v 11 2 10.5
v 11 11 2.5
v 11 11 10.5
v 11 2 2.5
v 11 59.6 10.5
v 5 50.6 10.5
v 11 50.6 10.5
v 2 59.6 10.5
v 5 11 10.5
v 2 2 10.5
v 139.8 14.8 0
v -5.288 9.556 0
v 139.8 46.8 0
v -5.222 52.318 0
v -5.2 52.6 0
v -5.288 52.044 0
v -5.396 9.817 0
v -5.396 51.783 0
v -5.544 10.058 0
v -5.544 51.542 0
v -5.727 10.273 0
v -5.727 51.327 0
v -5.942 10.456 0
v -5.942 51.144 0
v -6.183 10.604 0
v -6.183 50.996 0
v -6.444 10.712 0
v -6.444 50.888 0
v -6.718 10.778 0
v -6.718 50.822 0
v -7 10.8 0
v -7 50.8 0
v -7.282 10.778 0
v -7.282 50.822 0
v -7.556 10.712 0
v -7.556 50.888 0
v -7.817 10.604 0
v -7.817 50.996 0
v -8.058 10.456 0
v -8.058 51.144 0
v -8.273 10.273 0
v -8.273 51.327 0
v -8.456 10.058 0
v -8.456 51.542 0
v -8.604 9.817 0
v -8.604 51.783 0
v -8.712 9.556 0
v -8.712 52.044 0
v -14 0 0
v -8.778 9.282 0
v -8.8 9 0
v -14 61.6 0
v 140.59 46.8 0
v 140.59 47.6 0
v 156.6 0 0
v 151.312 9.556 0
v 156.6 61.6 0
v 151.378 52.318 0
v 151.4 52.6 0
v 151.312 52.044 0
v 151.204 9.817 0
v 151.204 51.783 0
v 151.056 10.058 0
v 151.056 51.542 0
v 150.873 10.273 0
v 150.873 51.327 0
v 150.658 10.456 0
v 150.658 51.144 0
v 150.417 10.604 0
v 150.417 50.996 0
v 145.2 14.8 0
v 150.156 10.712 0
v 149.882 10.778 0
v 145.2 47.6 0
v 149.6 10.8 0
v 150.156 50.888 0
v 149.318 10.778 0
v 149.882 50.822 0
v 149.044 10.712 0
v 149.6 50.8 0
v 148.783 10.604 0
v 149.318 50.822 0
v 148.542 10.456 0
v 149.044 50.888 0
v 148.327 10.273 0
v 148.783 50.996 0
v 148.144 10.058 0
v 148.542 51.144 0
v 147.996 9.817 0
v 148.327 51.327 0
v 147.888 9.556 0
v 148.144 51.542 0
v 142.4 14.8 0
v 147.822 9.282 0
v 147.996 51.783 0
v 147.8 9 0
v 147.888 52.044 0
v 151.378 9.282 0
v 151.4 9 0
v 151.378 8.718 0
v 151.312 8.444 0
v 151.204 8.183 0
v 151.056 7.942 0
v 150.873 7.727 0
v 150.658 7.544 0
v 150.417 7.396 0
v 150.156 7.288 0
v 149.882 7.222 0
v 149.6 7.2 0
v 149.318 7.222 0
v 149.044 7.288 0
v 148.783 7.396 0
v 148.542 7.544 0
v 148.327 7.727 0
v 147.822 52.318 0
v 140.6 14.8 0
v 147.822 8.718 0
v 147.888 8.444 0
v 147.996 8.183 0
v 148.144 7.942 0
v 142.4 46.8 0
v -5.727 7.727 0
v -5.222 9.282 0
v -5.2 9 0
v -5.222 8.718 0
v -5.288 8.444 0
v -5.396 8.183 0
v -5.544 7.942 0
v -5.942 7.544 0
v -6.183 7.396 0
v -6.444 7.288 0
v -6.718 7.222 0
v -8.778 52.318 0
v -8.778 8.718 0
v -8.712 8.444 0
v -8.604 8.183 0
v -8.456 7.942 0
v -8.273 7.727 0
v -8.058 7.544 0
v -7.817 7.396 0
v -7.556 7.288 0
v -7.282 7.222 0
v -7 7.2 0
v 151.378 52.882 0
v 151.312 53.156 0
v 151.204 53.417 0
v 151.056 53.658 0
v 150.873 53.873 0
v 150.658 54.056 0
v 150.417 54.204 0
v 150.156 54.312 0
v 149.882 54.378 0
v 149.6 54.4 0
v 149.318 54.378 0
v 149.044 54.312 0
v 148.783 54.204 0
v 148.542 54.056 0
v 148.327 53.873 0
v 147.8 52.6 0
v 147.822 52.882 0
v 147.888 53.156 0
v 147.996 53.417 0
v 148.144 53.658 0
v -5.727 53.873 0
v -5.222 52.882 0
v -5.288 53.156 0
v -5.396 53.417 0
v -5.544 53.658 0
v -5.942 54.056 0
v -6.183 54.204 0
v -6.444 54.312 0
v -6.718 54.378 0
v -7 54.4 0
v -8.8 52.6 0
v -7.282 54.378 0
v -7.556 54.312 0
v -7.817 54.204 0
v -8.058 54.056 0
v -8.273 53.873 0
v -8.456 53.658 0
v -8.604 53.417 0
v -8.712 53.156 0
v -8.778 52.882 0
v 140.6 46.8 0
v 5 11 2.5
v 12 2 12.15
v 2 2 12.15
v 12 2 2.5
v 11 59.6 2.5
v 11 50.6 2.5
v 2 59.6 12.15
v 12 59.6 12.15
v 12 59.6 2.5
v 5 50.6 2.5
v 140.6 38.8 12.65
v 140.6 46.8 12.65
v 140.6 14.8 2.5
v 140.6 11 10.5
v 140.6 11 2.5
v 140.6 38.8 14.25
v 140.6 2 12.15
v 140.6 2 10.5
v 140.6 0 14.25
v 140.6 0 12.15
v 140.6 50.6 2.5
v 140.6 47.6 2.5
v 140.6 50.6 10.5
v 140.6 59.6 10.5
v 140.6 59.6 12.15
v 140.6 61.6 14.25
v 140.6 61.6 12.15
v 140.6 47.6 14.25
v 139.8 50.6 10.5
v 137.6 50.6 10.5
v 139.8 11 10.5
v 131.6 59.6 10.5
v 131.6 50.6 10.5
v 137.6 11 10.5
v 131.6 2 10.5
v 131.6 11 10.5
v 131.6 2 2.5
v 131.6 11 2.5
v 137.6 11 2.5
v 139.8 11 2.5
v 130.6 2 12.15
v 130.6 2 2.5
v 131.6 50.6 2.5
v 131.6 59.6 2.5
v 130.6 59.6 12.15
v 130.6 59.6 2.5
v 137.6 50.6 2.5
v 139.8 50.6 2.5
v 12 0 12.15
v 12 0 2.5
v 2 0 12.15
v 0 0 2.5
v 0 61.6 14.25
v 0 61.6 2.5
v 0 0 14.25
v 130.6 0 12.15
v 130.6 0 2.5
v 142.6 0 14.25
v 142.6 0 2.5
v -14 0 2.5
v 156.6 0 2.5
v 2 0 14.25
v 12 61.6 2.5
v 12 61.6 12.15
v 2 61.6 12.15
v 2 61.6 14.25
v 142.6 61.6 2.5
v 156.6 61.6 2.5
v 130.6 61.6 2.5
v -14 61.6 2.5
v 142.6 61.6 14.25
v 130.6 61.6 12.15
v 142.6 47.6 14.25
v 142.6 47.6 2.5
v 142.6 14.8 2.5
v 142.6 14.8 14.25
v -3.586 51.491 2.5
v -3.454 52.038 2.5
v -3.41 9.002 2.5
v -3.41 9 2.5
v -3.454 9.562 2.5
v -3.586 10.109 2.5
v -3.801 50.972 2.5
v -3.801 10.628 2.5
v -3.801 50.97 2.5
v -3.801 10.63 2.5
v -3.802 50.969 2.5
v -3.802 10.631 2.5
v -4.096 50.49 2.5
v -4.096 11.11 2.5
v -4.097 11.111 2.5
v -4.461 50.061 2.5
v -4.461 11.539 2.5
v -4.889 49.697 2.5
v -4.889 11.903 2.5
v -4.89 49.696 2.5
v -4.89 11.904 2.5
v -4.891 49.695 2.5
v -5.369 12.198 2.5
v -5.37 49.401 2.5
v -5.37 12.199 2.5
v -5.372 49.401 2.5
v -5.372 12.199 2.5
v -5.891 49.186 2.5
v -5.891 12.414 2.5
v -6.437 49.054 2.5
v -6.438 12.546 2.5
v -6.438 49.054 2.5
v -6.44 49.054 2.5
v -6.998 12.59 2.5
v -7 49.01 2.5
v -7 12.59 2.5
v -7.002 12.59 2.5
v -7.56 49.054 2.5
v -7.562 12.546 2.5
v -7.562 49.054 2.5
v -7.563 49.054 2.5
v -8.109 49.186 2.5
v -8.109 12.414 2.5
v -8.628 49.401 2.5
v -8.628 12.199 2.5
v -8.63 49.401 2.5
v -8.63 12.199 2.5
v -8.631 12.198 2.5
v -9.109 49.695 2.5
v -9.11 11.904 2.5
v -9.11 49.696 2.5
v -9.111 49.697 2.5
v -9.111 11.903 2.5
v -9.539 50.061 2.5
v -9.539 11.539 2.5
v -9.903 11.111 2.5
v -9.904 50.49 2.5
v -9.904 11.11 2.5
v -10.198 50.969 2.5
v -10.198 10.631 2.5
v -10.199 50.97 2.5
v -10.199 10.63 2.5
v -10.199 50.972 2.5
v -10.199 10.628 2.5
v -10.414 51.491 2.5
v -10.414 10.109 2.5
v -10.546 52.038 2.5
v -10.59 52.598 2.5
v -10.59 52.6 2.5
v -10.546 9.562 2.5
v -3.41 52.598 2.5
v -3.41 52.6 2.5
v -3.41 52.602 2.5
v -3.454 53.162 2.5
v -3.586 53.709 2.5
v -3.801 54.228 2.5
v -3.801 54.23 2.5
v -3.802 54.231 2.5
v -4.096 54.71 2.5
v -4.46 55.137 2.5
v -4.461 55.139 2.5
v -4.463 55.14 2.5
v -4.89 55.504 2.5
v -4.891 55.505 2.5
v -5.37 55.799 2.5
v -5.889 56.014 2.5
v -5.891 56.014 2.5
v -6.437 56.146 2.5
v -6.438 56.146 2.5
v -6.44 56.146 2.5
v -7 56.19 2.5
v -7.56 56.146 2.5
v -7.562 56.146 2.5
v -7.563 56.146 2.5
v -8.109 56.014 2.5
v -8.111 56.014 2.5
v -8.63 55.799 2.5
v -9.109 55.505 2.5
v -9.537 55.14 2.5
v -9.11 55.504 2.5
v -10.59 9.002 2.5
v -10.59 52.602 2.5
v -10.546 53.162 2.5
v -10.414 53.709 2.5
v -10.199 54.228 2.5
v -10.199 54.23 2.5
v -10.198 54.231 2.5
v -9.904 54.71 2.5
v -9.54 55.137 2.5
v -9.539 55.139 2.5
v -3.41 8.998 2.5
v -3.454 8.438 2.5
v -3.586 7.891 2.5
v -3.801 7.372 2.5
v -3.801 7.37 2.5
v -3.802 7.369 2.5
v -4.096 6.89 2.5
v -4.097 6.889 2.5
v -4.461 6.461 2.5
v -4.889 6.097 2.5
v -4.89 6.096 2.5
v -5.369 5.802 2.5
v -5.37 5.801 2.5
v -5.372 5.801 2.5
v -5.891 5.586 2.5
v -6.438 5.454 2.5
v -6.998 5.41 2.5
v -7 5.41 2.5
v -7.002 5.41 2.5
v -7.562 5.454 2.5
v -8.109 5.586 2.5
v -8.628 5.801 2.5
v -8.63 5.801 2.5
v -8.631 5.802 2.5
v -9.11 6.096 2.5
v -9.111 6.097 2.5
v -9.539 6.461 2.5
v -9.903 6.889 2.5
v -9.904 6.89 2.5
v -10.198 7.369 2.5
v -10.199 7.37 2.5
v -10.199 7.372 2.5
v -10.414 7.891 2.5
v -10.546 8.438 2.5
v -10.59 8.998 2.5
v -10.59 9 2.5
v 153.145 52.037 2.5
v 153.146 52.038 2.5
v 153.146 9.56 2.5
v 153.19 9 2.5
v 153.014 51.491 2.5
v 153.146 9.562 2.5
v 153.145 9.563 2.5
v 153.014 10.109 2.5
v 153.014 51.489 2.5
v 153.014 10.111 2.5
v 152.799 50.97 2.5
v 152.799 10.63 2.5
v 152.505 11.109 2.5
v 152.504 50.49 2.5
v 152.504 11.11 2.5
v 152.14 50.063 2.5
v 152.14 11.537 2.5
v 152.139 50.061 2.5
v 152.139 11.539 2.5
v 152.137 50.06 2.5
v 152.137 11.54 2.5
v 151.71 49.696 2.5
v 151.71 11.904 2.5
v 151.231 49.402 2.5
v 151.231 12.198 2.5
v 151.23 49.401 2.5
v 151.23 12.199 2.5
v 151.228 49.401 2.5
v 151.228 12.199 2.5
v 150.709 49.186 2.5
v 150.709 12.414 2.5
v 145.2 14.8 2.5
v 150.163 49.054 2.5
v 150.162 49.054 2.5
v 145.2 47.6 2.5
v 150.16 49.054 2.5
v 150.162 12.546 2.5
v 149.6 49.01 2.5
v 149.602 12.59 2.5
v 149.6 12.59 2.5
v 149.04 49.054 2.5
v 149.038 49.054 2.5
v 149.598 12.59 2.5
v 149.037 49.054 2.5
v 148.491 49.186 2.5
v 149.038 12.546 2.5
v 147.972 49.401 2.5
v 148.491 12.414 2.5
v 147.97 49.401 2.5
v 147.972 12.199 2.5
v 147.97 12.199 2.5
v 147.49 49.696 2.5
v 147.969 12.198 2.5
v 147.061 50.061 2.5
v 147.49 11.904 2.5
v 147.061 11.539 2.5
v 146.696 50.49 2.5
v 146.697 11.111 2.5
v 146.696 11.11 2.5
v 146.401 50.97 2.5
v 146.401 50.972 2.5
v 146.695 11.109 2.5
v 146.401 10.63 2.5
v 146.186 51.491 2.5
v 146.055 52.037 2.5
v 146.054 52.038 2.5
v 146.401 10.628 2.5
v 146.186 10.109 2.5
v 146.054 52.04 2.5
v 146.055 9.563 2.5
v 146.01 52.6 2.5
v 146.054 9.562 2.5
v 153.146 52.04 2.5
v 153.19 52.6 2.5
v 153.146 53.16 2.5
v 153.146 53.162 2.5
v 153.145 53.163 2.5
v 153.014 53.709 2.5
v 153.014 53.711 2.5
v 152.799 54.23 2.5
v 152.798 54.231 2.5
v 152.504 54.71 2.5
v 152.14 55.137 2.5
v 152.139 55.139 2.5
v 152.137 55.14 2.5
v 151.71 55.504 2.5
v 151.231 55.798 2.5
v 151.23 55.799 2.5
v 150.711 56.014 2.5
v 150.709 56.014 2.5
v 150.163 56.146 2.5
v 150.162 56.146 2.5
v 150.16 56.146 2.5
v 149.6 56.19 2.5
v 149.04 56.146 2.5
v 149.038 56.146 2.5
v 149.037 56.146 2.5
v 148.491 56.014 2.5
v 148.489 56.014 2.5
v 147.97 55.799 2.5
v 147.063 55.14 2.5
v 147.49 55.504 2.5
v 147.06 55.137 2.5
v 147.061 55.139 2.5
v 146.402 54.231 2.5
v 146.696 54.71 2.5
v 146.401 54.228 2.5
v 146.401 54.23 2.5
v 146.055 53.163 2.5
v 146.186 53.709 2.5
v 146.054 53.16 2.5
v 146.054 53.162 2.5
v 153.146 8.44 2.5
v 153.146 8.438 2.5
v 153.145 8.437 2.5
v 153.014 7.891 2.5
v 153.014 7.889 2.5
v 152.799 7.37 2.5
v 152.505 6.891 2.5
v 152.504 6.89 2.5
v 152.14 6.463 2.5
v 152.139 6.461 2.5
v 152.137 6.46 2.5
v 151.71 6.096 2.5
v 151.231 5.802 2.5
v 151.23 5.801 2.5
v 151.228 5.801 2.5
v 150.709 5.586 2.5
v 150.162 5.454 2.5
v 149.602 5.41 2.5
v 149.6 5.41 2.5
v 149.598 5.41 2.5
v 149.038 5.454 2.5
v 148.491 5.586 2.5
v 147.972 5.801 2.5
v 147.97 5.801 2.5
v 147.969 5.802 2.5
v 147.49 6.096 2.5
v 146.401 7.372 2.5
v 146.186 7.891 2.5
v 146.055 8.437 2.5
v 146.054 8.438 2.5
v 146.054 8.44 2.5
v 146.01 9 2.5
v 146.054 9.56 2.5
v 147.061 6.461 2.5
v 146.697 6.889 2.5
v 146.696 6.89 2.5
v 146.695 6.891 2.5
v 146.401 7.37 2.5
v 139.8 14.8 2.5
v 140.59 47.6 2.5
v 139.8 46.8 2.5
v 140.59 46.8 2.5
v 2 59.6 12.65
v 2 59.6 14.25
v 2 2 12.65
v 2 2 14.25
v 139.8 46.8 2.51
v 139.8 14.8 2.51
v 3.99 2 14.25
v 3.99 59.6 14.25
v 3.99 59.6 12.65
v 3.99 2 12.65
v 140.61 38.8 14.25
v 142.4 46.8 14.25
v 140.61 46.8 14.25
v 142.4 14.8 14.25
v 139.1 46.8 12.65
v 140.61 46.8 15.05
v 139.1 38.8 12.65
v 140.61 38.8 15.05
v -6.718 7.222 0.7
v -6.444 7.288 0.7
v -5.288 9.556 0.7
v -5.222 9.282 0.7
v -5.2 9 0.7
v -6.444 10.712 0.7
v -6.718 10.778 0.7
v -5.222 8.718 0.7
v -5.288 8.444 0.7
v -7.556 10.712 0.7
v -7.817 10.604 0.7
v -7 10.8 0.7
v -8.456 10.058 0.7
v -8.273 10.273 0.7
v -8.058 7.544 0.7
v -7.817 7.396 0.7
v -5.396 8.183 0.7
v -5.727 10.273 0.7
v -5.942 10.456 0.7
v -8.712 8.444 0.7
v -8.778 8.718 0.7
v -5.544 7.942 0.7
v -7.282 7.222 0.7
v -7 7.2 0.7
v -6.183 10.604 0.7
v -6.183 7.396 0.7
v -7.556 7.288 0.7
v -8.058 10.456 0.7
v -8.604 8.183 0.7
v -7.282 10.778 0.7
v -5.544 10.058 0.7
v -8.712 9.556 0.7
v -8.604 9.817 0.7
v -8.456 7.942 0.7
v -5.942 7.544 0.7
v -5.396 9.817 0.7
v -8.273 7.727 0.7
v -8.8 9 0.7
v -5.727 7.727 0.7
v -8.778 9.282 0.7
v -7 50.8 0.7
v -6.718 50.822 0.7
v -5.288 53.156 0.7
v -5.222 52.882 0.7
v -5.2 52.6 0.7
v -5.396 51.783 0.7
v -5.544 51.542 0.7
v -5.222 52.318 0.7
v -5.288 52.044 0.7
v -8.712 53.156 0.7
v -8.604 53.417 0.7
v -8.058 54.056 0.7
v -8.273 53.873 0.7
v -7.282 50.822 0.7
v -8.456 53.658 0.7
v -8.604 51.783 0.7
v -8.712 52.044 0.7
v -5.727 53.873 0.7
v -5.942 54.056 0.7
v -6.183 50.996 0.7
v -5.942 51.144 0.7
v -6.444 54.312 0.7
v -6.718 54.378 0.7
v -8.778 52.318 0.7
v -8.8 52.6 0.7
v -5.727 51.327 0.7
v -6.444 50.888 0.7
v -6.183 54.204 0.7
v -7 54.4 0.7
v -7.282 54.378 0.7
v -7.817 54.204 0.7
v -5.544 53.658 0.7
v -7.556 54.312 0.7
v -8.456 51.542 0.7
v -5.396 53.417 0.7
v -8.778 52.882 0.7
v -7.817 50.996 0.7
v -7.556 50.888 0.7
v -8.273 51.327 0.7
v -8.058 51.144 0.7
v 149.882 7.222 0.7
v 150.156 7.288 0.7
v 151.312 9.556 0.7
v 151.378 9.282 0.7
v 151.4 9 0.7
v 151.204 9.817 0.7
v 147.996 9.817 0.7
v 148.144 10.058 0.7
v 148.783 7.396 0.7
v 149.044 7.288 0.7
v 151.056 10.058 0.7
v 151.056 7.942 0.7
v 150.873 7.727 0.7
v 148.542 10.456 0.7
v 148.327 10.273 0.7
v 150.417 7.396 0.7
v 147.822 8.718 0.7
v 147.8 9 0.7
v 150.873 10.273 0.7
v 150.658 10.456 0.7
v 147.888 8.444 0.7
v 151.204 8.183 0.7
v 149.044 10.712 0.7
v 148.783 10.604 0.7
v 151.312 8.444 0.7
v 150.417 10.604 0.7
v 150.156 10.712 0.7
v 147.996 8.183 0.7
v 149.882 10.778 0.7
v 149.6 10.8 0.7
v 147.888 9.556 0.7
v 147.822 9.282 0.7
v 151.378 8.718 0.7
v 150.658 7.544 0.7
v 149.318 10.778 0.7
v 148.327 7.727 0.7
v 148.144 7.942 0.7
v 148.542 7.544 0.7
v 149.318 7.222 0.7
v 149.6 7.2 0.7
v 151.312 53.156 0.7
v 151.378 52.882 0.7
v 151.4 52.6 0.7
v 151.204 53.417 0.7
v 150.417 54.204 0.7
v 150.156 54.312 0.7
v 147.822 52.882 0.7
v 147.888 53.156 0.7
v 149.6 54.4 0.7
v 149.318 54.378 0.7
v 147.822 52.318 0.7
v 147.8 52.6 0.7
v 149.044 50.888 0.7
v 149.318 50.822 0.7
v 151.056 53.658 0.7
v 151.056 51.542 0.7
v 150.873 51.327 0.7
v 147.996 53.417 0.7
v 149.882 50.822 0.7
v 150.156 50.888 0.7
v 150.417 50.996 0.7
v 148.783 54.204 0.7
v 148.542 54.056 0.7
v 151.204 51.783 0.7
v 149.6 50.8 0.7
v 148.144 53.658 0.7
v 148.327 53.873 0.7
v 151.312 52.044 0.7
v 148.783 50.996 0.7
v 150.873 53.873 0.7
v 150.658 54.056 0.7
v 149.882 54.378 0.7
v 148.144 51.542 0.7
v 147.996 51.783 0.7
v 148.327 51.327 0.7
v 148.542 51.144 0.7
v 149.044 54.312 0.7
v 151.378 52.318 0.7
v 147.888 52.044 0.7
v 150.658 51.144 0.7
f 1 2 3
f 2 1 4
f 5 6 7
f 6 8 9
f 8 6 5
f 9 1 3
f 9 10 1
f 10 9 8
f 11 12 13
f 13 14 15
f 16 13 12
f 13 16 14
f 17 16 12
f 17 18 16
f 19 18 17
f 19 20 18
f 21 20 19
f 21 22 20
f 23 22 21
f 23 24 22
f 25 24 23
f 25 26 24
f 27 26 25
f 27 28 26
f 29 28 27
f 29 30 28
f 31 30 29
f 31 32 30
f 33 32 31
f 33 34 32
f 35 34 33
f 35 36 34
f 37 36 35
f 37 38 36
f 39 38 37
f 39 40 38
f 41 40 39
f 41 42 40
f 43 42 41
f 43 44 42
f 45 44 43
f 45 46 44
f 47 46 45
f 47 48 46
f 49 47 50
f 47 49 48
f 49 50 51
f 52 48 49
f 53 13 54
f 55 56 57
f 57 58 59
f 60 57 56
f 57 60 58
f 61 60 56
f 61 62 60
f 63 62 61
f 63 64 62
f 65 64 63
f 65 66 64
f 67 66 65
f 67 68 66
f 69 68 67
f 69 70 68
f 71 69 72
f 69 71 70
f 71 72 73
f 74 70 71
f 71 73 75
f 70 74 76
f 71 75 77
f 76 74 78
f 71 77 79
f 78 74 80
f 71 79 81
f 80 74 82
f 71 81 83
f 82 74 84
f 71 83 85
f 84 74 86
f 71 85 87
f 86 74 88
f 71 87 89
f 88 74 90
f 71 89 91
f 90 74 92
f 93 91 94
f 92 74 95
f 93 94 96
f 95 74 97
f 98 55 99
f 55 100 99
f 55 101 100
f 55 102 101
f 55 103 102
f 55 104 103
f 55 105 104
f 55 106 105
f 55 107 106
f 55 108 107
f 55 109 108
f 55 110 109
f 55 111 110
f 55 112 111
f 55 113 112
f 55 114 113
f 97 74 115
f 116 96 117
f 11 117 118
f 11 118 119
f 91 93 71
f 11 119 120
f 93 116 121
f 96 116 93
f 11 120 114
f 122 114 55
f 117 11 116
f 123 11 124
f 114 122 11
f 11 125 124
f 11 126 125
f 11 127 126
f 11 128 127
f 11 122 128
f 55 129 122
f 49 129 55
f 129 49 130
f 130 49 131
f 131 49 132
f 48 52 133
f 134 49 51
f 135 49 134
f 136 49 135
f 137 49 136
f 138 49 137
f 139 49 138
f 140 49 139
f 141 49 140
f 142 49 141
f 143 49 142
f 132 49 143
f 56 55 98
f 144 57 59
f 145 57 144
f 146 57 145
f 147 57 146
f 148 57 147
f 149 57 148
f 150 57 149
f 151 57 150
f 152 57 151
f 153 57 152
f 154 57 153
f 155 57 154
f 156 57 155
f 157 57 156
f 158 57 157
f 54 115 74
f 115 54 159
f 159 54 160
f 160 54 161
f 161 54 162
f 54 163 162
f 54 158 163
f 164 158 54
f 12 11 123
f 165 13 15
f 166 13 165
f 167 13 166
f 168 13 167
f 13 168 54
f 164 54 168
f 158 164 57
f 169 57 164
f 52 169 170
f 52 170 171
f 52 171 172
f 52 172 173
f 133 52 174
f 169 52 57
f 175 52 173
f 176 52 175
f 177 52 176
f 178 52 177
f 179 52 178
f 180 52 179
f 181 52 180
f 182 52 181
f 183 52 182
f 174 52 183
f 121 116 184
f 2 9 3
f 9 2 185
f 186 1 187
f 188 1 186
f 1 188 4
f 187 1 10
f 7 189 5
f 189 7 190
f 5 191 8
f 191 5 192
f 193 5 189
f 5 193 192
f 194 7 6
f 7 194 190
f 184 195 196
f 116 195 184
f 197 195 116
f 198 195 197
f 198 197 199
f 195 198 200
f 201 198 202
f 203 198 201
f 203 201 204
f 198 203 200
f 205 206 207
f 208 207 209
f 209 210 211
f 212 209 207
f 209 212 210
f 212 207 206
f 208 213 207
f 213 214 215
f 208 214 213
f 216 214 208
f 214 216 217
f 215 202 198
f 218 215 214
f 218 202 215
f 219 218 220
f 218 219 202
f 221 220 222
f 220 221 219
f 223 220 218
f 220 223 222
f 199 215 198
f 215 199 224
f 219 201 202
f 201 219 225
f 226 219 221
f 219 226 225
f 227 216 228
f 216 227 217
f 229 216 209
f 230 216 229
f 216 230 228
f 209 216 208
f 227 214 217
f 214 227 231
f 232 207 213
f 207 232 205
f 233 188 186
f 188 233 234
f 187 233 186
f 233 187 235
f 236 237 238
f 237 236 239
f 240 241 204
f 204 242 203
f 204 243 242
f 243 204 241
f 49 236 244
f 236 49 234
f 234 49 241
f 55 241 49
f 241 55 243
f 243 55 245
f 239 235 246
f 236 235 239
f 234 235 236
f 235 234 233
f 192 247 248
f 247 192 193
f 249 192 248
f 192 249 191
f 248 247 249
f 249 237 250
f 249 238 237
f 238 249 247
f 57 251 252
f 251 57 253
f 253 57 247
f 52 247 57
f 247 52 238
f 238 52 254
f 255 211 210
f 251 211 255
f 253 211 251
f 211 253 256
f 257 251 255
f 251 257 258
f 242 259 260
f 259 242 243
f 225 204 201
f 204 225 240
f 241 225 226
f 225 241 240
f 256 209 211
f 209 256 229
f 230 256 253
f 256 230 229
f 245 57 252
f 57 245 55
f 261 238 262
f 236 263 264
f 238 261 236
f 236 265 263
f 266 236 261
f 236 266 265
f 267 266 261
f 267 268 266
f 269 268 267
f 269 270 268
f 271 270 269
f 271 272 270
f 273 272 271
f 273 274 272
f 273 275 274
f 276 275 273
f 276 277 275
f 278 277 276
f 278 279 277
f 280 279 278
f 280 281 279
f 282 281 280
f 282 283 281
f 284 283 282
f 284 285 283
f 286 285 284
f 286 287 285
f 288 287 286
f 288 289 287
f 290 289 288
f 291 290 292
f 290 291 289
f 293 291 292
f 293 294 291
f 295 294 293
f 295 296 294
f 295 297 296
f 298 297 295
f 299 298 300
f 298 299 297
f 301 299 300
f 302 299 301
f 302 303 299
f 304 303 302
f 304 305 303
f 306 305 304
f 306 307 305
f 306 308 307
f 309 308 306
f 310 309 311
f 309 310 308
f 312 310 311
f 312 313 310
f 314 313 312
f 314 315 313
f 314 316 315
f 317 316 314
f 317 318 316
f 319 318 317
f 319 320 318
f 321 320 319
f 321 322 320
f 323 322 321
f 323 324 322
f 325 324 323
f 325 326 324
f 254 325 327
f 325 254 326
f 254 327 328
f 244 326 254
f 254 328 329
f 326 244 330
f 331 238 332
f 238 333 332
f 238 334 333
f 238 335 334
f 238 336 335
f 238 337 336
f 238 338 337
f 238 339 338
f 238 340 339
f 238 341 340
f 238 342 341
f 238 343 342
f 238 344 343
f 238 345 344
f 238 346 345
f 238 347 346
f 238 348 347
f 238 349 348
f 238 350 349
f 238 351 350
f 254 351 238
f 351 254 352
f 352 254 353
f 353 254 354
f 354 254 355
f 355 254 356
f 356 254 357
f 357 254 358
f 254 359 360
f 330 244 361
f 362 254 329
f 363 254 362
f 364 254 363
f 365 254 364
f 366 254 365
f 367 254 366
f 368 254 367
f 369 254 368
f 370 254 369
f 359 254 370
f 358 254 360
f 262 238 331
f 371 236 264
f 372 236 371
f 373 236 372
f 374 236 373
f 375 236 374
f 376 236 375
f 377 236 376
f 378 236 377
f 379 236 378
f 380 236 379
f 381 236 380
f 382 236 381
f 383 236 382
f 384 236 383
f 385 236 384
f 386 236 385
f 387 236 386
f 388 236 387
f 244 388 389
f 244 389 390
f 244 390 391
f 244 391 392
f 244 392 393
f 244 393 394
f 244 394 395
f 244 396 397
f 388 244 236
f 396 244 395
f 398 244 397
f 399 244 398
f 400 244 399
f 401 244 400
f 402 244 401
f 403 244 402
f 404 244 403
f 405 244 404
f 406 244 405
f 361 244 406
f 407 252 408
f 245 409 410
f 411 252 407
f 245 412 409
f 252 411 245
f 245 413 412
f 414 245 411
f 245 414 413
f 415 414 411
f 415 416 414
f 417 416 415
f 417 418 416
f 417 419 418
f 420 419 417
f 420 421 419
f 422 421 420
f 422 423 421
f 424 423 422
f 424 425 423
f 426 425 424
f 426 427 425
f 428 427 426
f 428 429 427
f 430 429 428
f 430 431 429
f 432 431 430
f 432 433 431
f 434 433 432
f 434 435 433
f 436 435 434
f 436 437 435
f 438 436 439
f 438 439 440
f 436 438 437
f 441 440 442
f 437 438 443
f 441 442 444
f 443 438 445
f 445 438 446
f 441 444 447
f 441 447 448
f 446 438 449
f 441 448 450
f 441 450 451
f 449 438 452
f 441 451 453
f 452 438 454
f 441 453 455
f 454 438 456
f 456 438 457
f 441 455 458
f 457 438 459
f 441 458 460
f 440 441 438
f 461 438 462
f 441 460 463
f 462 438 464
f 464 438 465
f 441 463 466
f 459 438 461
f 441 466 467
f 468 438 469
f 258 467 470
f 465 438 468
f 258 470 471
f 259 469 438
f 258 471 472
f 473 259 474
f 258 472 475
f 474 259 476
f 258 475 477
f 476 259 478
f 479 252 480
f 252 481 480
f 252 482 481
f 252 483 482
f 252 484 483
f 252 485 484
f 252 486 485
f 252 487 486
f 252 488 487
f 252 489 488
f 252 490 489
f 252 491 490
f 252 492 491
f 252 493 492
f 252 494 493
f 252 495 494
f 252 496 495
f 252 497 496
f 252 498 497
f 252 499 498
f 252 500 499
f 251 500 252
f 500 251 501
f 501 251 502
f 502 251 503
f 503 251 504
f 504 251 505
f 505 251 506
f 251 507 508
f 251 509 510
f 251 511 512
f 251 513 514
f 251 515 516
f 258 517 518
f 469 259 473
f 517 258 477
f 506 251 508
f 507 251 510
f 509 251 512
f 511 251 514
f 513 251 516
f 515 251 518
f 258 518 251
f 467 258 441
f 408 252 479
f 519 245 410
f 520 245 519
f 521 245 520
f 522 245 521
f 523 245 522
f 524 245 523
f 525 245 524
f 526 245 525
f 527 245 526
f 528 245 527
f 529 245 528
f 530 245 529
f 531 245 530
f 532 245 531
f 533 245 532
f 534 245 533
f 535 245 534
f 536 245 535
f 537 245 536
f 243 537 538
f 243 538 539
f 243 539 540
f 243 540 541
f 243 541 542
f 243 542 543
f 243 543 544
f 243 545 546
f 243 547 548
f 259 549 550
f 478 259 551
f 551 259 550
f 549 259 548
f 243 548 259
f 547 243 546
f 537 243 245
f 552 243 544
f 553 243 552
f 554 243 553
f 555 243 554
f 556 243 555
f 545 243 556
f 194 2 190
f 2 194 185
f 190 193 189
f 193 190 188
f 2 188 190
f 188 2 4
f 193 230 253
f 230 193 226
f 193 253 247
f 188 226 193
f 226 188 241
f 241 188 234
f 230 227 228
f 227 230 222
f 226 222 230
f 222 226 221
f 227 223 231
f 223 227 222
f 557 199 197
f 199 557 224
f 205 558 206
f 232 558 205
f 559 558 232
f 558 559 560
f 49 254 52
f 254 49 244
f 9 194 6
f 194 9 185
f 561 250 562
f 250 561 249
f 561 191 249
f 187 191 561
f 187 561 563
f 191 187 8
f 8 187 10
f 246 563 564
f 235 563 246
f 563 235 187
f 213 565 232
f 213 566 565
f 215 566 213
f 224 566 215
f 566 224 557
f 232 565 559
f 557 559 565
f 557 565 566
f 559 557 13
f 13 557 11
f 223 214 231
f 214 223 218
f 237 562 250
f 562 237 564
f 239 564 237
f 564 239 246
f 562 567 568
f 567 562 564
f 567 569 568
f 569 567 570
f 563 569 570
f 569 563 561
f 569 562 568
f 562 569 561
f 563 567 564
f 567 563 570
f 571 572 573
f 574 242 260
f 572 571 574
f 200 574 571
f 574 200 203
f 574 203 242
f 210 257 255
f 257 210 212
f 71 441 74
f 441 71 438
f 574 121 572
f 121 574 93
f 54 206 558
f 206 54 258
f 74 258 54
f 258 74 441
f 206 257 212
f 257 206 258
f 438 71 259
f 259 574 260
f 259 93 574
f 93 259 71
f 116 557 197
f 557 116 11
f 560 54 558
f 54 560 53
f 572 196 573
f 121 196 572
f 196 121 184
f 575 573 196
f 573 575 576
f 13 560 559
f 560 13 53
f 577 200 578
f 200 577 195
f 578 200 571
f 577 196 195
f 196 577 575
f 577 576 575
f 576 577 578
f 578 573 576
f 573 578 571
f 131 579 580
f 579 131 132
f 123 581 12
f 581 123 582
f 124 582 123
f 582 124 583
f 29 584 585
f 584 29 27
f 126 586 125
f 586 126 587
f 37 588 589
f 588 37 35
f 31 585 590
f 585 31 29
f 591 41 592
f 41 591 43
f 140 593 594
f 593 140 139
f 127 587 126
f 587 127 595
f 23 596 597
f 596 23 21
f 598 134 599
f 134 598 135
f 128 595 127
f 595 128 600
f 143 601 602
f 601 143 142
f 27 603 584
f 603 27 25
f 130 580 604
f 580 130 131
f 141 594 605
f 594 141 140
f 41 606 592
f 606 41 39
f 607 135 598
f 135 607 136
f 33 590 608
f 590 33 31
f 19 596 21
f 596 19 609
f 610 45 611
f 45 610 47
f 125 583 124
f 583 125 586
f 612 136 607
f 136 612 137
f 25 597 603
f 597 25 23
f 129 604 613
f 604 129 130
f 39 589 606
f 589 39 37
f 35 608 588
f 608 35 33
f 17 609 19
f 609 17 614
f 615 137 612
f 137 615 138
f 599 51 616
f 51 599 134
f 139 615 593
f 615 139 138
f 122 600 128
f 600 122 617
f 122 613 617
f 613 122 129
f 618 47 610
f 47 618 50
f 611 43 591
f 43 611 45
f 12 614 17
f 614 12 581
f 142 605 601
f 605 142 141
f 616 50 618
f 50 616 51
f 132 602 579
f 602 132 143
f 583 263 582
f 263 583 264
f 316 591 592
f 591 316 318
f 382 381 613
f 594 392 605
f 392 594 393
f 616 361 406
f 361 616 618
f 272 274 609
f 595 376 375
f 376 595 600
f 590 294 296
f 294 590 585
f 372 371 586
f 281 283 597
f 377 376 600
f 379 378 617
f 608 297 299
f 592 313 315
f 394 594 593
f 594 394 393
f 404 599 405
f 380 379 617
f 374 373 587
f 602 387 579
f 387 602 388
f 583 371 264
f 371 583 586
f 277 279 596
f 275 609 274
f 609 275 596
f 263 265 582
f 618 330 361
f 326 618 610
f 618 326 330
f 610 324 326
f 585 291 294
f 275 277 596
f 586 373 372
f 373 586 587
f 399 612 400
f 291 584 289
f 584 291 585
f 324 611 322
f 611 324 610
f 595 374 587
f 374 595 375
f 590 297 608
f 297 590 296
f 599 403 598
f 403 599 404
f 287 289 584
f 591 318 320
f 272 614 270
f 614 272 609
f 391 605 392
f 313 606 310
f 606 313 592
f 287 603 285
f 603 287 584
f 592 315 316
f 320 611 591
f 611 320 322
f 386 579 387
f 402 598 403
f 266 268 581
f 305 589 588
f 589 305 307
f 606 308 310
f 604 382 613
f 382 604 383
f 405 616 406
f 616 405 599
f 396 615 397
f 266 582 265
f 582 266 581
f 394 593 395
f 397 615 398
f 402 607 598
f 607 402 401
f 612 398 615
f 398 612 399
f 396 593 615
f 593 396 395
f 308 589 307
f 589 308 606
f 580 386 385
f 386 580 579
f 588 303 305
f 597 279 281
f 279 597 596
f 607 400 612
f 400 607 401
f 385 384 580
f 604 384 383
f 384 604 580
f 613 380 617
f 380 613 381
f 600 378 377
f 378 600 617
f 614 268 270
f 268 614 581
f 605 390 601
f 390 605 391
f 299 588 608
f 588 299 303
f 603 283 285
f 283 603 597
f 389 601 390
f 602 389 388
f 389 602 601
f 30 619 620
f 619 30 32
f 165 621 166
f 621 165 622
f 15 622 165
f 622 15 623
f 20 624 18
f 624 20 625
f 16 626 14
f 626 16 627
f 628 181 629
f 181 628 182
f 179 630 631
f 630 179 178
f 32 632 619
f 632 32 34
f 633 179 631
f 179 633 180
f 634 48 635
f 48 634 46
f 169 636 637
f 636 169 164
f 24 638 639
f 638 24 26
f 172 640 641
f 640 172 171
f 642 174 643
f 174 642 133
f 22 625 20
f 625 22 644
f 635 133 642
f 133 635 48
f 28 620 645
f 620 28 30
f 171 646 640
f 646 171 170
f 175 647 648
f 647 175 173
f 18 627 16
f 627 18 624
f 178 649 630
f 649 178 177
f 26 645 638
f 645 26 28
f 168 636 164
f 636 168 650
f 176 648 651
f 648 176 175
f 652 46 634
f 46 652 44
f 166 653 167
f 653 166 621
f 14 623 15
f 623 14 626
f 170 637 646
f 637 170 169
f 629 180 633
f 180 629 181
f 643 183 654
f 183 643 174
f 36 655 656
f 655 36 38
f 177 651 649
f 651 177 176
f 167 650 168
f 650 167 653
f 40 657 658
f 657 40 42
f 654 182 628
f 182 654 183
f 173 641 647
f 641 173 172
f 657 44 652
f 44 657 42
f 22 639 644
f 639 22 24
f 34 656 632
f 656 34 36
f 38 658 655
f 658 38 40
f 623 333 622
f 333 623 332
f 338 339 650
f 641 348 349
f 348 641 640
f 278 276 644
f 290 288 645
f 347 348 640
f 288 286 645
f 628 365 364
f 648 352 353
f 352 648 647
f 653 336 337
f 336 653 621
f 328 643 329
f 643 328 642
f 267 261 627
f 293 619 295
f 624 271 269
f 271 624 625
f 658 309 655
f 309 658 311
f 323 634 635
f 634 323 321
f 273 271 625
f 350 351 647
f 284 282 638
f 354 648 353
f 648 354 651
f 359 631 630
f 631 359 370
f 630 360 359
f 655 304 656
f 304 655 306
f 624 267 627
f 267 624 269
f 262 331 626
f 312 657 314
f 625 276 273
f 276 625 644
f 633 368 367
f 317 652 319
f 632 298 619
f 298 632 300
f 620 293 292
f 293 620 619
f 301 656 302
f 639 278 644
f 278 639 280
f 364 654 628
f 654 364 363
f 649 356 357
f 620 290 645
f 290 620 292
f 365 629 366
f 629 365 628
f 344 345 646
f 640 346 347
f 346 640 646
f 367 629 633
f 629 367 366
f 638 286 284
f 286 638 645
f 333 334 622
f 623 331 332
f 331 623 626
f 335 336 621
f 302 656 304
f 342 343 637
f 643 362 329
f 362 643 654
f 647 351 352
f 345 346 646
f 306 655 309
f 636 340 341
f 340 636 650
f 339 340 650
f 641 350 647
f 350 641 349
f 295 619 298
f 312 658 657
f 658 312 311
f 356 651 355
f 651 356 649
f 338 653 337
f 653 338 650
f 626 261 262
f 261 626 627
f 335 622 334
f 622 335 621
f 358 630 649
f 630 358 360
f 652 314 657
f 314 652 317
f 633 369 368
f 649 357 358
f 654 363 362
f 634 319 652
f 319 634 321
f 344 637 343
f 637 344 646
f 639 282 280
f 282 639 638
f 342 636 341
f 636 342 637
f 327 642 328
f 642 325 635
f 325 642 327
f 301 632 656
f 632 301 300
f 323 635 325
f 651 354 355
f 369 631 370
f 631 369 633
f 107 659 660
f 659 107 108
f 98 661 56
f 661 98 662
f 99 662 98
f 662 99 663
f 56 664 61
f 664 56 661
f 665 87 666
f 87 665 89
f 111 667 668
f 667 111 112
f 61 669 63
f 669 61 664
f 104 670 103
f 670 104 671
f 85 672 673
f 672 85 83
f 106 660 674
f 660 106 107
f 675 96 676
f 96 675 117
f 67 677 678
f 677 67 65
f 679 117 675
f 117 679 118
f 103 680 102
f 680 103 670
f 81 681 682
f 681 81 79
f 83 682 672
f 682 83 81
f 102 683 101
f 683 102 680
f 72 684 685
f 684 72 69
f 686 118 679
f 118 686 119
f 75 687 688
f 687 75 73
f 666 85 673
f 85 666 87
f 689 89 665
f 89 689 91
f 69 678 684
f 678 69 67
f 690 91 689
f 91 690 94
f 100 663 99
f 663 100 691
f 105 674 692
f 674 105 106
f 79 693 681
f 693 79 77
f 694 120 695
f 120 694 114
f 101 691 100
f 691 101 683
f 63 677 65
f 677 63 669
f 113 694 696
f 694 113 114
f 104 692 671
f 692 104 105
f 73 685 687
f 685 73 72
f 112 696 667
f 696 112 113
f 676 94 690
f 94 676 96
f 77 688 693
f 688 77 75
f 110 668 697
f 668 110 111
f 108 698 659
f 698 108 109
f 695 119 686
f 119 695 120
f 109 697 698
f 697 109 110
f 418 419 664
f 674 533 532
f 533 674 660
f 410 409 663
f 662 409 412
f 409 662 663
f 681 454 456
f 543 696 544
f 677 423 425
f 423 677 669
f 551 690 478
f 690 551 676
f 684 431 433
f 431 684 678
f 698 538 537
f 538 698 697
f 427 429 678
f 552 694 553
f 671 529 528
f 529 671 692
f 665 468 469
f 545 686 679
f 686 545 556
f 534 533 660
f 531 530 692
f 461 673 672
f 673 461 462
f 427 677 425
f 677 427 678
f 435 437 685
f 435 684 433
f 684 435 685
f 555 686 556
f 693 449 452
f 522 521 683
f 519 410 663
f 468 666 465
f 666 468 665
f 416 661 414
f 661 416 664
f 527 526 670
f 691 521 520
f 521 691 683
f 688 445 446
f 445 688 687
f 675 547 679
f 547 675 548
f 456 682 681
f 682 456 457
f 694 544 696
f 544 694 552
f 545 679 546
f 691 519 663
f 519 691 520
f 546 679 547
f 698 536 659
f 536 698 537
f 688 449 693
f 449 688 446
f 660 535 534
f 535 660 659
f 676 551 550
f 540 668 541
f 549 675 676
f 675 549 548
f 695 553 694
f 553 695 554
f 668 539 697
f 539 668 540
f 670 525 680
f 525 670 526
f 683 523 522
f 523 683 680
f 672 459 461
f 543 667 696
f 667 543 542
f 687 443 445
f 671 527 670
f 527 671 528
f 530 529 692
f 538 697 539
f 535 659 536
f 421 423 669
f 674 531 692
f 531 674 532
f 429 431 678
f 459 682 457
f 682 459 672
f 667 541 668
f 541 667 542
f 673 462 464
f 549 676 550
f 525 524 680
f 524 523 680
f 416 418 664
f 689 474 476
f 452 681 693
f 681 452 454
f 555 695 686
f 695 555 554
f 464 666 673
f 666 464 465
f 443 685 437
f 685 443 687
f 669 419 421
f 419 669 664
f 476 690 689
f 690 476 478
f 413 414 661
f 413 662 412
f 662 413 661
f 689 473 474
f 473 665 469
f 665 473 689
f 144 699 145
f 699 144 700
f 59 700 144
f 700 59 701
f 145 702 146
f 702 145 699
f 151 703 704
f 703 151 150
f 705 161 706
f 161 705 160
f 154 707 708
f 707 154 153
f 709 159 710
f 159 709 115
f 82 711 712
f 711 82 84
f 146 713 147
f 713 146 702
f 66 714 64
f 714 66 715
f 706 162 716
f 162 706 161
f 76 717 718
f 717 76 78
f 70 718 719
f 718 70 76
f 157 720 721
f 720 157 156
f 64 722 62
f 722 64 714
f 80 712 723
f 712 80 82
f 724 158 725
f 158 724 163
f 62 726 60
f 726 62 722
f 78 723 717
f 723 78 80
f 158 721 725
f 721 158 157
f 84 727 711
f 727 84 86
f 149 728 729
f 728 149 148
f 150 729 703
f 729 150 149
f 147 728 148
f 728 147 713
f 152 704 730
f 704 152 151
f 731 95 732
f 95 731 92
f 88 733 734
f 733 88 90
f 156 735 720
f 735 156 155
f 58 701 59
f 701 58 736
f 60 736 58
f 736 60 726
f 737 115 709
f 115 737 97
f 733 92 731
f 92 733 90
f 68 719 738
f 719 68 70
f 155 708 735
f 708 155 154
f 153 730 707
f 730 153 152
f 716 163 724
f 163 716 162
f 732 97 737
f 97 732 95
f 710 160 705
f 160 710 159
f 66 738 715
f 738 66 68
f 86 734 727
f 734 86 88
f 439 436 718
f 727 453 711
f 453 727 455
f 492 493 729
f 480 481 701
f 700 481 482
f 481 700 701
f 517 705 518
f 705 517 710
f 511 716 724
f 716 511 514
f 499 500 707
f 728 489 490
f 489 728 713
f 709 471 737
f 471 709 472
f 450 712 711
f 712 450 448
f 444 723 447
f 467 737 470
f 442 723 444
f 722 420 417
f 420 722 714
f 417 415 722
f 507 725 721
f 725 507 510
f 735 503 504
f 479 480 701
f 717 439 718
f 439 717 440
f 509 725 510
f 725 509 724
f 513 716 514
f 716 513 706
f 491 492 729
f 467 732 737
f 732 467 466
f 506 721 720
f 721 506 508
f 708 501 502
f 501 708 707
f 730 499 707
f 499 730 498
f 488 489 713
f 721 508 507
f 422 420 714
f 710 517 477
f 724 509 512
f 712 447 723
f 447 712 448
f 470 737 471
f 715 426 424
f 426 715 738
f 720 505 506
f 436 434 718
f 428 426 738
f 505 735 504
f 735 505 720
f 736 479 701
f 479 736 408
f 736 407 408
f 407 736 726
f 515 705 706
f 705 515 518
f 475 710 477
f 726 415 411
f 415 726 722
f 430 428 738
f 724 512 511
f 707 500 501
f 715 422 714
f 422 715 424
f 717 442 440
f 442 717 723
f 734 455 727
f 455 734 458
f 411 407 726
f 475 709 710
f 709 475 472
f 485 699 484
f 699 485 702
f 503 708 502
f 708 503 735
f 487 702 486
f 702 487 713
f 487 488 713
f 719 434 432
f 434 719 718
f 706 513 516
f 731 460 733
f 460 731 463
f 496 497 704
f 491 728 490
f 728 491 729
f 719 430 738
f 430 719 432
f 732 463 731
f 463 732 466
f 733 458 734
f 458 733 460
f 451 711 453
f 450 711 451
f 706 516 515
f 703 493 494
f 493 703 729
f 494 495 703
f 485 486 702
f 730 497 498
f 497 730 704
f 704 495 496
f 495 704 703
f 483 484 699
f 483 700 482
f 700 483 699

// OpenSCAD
// Snap-in tray v2 for the Hailege 8-channel AC 220V optocoupler board
// (H-1-1832-8CH). One end slides under a fixed lip; the other end snaps
// past a horizontal flexure clip (it bends sideways, in the plane of the
// print layers, so it doesn't snap off like a vertical clip).
// v2 changes: +1 mm width clearance, 0.5 mm extra headroom under the lip and
// hook (PCB measured 1.65 mm), clip redesigned as a horizontal flexure.
// All dimensions in mm. Print flat on the bed, no supports. PETG preferred.

/* [Board] */
board_l   = 138.0;   // long side
board_w   = 56.0;    // short side
board_t   = 1.65;    // PCB thickness (measured)
clear_l   = 0.3;     // clearance each end (long direction)
clear_w   = 0.8;     // clearance each side (width): v1 was 1 mm too tight overall

/* [Tray] */
floor_t   = 2.5;
standoff  = 8.0;     // gap under the PCB
wall_t    = 2.0;
corner_pad = 9;
corner_guide = 12;
end_ledge = 3.0;
headroom  = 0.5;     // vertical gap between PCB top and the lip/hook undersides

/* [Retention] */
lip       = 2.0;     // fixed lip overhang
hook      = 1.5;     // clip hook overhang over the PCB end
flex_len  = 32;      // flexure arm length (longer = softer)
flex_t    = 1.8;     // flexure arm thickness (in the print plane)
hook_len  = 8;       // hook length at the free end of the arm
gap       = 0.8;     // clearance around the flexure arm

/* [Screw tabs] */
tab_l     = 14;
hole_d    = 3.6;
csk_d     = 7.2;
hole_off  = 9;

$fn = 40;

in_l = board_l + 2*clear_l;
in_w = board_w + 2*clear_w;
out_l = in_l + 2*wall_t;
out_w = in_w + 2*wall_t;
pcb_z = floor_t + standoff;
top_z = pcb_z + board_t;
lip_z = top_z + headroom;            // underside of lip and hook
wall_h = lip_z + 1.6;                // end wall height (lip thickness 1.6)

yc = out_w/2;
arm_x0 = out_l - wall_t;             // arm inner face = wall inner face
arm_y0 = yc - flex_len/2;            // root end
arm_y1 = yc + flex_len/2;            // free end

module screw_holes() {
    for (x = [-tab_l/2, out_l + tab_l/2])
        for (y = [hole_off, out_w - hole_off]) {
            translate([x, y, -1]) cylinder(d = hole_d, h = floor_t + 2);
            translate([x, y, floor_t - (csk_d - hole_d)/2])
                cylinder(d1 = hole_d, d2 = csk_d, h = (csk_d - hole_d)/2 + 0.01);
        }
}

module body() {
    // base plate with tabs
    translate([-tab_l, 0, 0]) cube([out_l + 2*tab_l, out_w, floor_t]);
    // corner pads
    for (x = [wall_t, out_l - wall_t - corner_pad])
        for (y = [wall_t, out_w - wall_t - corner_pad])
            translate([x, y, 0]) cube([corner_pad, corner_pad, pcb_z]);
    // short-end ledges (clip end stops short of the arm)
    translate([wall_t, wall_t, 0]) cube([end_ledge, in_w, pcb_z]);
    translate([out_l - wall_t - end_ledge, wall_t, 0]) cube([end_ledge - gap, in_w, pcb_z]);
    // corner guides on the long sides (up to PCB top only)
    for (x = [0, out_l - corner_guide])
        for (y = [0, out_w - wall_t])
            translate([x, y, 0]) cube([corner_guide, wall_t, top_z]);
    // lip end wall + lip
    cube([wall_t, out_w, wall_h]);
    translate([wall_t - 0.01, wall_t, lip_z]) cube([lip, in_w, 1.6]);
    // clip end wall (the flexure is cut out of it below)
    translate([out_l - wall_t, 0, 0]) cube([wall_t, out_w, wall_h]);
}

module flexure_cut() {
    // frees the arm from the floor, the tab and the rest of the wall,
    // leaving it attached only at its root end (arm_y0)
    // outer slot (between arm and tab/base)
    translate([arm_x0 + flex_t, arm_y0, -1]) cube([gap + wall_t, flex_len + gap, wall_h + 2]);
    // slot at the free end
    translate([arm_x0 - 0.01, arm_y1, -1]) cube([wall_t + gap + 0.02, gap, wall_h + 2]);
    // floor under the arm, so the arm stands on the bed and flexes freely
    translate([arm_x0 - gap, arm_y0, -1]) cube([flex_t + 2*gap, flex_len, floor_t + 1.01]);
}

module flexure_arm() {
    // the arm: stands on the bed, bends in x (outwards) as the board goes in
    translate([arm_x0, arm_y0, 0]) cube([flex_t, flex_len, wall_h]);
    // hook at the free end, flat underside at lip_z, ramp above for snap-in
    translate([arm_x0, arm_y1 - hook_len, lip_z])
        rotate([-90, 0, 0]) mirror([0,1,0])
            linear_extrude(hook_len) polygon([[0.01, 0], [-hook, 0], [0.01, 2.4]]);
}

difference() {
    union() {
        difference() { body(); flexure_cut(); }
        flexure_arm();
    }
    screw_holes();
}
